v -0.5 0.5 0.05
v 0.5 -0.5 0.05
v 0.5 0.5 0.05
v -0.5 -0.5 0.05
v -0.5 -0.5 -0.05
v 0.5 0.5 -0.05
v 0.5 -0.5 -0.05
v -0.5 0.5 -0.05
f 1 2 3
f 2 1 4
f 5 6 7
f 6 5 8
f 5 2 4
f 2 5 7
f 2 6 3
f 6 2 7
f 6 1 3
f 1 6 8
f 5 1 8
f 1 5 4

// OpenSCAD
// file: lib.scad
function x(v) = v[0];
function y(v) = v[1];
function z(v) = v[2];
function add(v1,v2) = [ for (i = [ 0 : len(v1)-1 ]) v1[i] + v2[i] ];
function xv(d) = [d,0,0];
function yv(d) = [0,d,0];
function zv(d) = [0,0,d];

module box(v) { cube(size=v, center=true); }
module cyl(r1,r2,h) { cylinder(r1=r1, r2=r2, h=h, center=true); }

function grow(n,v) = [x(v)+n*2, y(v)+n*2, z(v)+n*2];

module rbox(v, radius=1) {
	cx = x(v)/2-radius;
	cy = y(v)/2-radius;
	cz = z(v)/2-radius;

	hull() {
		translate([cx,cy,cz]) sphere(r=radius);
		translate([cx,cy,-cz]) sphere(r=radius);
		translate([cx,-cy,cz]) sphere(r=radius);
		translate([cx,-cy,-cz]) sphere(r=radius);
		translate([-cx,cy,cz]) sphere(r=radius);
		translate([-cx,cy,-cz]) sphere(r=radius);
		translate([-cx,-cy,cz]) sphere(r=radius);
		translate([-cx,-cy,-cz]) sphere(r=radius);
	}
}

module fillet(r=1) {
  minkowski() {
    difference() {
      children();
      minkowski() {
        difference() {
          minkowski() {
            children();
            sphere(r=r);
          }
          children();
        }
        sphere(r=r);
      }
    }
    sphere(r=r);
  }
}
// main file
use <lib.scad>

body = [1, 1, 0.1];

union() {
	box(body);
};
